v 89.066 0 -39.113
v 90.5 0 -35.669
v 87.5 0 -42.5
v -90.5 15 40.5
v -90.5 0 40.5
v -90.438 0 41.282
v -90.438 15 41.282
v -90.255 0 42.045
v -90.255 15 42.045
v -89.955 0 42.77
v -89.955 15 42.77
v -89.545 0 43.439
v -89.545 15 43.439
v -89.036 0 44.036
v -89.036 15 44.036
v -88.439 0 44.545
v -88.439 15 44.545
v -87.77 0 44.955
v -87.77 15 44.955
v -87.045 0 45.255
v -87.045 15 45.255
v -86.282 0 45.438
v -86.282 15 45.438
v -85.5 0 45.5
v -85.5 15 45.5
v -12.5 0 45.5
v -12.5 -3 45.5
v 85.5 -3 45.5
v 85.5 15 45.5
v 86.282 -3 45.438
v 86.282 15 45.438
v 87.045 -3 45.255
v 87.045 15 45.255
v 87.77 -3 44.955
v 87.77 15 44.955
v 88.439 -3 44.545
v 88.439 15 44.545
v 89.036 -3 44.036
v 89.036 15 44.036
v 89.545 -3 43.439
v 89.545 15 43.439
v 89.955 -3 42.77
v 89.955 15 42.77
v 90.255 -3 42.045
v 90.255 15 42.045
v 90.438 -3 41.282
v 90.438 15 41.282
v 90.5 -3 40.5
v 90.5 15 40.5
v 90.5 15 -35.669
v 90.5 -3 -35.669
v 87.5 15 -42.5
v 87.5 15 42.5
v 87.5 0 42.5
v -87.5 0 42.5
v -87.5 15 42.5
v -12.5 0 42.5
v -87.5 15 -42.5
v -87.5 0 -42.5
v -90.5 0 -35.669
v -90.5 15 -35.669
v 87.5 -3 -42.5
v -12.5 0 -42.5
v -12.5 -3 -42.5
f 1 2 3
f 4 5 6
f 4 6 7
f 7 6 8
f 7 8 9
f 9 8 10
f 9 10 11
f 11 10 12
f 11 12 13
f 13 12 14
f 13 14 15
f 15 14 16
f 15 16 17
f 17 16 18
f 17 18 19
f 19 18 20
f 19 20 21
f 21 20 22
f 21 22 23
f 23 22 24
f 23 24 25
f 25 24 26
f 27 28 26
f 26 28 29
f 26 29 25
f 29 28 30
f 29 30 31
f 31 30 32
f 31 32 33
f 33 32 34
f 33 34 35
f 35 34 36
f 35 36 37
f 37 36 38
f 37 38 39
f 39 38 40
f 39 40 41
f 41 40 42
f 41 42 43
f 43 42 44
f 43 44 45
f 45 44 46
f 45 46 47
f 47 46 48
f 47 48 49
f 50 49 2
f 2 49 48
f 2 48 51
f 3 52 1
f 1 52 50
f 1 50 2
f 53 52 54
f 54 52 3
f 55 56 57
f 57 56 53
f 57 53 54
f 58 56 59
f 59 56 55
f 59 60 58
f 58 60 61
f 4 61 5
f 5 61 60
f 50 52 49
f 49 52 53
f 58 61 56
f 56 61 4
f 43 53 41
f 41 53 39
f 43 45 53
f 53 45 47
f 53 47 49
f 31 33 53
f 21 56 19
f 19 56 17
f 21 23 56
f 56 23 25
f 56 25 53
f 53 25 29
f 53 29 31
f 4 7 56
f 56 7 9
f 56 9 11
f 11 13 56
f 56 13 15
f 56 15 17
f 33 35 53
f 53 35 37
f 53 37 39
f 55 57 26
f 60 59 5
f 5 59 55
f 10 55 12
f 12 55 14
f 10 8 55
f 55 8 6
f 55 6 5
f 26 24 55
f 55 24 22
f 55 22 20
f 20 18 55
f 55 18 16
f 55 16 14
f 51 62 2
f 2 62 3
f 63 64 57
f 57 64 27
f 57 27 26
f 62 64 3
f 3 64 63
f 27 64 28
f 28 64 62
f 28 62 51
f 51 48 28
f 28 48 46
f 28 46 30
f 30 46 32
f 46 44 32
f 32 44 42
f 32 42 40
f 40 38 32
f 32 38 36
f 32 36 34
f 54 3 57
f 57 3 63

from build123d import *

# Parameters (mm, degrees)
BOSS_EXTRUDE2_DEPTH = 15
BOSS_EXTRUDE3_START = -3
BOSS_EXTRUDE3_DEPTH = 3


with BuildPart() as part:
    # Sketch1 → Boss-Extrude2 (new body)
    with BuildSketch(Plane(origin=(0, 0, 0), x_dir=(1, 0, 0), z_dir=(0, 1, 0))):
        with BuildLine():
            ThreePointArc((-85.5, -45.5), (-89.035533906, -44.035533906), (-90.5, -40.5))
            Line((-90.5, -40.5), (-90.5, 35.668613654))
            ThreePointArc((-90.5, 35.668613654), (-89.065520601, 39.113080167), (-87.5, 42.5))
            Line((-87.5, 42.5), (-87.5, -42.5))
            Line((-87.5, -42.5), (87.5, -42.5))
            Line((87.5, -42.5), (87.5, 42.5))
            ThreePointArc((87.5, 42.5), (89.065520601, 39.113080167), (90.5, 35.668613654))
            Line((90.5, 35.668613654), (90.5, -40.5))
            ThreePointArc((90.5, -40.5), (89.035533906, -44.035533906), (85.5, -45.5))
            Line((85.5, -45.5), (-85.5, -45.5))
        make_face()
    extrude(amount=BOSS_EXTRUDE2_DEPTH)

    # Sketch3 → Boss-Extrude3 (add)
    with BuildSketch(Plane(origin=(0, 0, 0), x_dir=(1, 0, 0), z_dir=(0, 1, 0)).offset(BOSS_EXTRUDE3_START)):
        with BuildLine():
            Line((87.5, 42.5), (-12.5, 42.5))
            Line((-12.5, 42.5), (-12.5, -45.5))
            Line((-12.5, -45.5), (85.5, -45.5))
            ThreePointArc((85.5, -45.5), (89.035533906, -44.035533906), (90.5, -40.5))
            Line((90.5, -40.5), (90.5, 35.668613654))
            Line((90.5, 35.668613654), (87.5, 42.5))
        make_face()
    extrude(amount=BOSS_EXTRUDE3_DEPTH)


solid = part.part
